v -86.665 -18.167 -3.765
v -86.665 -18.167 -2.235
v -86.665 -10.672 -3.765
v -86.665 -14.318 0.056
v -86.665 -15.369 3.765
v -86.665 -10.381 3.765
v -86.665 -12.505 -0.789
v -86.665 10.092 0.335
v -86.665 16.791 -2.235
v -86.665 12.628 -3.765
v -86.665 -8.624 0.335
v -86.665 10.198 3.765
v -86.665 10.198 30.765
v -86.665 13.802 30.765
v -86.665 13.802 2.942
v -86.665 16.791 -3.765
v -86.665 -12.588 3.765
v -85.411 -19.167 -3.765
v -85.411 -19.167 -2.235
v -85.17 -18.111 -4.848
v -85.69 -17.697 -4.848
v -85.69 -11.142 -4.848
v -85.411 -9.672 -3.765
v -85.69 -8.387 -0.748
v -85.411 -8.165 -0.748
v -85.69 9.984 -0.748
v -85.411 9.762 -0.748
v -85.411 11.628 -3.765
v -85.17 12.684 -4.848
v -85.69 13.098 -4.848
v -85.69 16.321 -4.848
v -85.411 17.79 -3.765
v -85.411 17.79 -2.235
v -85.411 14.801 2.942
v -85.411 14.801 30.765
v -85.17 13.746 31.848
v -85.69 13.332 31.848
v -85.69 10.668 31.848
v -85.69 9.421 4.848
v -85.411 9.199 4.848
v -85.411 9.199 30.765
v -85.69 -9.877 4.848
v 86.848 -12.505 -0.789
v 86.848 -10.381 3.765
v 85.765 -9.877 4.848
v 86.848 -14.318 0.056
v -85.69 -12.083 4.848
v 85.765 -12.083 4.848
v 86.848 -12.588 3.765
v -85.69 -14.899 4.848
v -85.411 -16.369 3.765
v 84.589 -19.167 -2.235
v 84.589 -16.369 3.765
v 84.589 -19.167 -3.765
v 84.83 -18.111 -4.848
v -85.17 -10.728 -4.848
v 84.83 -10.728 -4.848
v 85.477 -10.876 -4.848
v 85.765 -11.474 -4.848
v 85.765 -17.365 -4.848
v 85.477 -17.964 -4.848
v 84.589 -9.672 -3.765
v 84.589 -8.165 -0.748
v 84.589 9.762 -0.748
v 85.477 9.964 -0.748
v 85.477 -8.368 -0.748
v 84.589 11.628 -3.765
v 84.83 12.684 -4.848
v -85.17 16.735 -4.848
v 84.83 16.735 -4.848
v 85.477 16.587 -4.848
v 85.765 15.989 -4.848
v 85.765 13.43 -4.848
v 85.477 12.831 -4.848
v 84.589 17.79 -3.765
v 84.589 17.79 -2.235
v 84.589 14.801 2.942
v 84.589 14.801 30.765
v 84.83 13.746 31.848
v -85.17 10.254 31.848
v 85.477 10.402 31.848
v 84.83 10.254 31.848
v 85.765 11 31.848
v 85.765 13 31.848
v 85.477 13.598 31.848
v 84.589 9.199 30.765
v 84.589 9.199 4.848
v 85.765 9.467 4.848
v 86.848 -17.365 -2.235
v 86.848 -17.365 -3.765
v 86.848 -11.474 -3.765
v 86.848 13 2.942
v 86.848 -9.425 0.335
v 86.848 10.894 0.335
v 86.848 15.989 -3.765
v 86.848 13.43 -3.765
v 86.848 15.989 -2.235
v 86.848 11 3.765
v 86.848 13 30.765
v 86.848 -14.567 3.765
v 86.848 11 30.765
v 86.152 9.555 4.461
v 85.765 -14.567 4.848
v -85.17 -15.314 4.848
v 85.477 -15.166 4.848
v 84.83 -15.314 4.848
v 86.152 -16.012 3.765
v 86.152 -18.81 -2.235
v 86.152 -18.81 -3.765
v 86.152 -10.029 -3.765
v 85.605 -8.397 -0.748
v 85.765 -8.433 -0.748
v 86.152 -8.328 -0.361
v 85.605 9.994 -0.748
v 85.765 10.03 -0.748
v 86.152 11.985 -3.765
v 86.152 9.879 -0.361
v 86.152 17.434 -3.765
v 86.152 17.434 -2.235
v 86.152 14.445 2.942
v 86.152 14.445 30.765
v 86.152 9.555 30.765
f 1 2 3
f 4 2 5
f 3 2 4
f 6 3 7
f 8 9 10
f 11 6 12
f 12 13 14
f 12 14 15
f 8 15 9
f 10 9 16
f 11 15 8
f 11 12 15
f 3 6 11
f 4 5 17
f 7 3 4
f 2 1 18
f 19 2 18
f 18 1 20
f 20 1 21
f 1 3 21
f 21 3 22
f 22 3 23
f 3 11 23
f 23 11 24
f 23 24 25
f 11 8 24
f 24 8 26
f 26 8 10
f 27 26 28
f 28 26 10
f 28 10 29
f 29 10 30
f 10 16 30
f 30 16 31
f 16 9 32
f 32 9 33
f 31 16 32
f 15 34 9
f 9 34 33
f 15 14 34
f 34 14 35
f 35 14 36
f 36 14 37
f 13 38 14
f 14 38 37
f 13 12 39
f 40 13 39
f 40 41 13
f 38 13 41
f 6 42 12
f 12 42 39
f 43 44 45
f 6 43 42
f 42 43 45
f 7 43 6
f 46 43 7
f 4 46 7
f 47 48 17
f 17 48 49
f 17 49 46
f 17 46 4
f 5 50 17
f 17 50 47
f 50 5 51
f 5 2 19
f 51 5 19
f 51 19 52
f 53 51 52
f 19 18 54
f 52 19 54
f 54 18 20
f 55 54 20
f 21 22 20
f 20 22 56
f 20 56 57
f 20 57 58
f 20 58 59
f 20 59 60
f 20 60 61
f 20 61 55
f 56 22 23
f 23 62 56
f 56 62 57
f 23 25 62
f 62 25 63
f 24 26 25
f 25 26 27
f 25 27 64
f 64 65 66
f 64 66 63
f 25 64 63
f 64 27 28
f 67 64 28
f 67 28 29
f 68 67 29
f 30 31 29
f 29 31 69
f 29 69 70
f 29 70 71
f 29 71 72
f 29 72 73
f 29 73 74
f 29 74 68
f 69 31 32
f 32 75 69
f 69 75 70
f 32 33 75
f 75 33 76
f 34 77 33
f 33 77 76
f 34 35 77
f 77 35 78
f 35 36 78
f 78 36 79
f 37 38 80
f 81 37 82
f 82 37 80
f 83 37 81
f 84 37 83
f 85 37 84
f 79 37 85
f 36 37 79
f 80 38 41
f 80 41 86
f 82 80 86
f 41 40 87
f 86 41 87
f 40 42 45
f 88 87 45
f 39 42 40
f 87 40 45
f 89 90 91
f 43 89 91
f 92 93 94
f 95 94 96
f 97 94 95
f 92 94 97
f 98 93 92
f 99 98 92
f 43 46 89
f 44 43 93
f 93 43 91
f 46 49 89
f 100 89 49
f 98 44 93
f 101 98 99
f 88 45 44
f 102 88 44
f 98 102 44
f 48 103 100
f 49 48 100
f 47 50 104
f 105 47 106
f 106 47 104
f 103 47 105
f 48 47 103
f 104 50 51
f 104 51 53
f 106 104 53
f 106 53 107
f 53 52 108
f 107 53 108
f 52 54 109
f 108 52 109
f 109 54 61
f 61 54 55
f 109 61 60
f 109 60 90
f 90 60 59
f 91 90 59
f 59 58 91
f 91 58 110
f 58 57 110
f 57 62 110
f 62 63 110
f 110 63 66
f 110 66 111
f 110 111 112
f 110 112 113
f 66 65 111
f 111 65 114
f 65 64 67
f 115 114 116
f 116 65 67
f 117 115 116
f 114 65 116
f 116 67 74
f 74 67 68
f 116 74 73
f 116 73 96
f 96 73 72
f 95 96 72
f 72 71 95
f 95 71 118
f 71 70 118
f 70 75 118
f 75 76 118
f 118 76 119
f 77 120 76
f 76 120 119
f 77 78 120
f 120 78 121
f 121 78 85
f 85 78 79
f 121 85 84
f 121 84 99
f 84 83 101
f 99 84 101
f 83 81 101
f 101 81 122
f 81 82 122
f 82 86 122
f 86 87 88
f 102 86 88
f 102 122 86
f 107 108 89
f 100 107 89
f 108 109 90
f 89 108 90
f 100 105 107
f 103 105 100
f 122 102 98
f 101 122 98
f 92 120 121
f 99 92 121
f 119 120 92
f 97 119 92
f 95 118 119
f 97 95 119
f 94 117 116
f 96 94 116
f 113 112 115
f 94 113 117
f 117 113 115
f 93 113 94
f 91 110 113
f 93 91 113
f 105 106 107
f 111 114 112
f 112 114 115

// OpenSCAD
module Base(length)
{
    difference()
    {
        // Base
        cube([length, 45, 6], center = true);

        // Trim off the front
        translate([0, -27, 0])
        rotate([-25, 0, 0])
        cube([length * 1.5, 20, 30], center = true);

        // Trim off the back
        translate([0, 31, -9])
        rotate([30, 0, 0])
        cube([length * 1.5, 20, 40], center = true);
    }
}

module MainShape(length)
{
    // Upright
    translate([0, 12, 16])
    cube([length, 2, 28], center = true);

    difference()
    {
        Base(length);

        translate([0, 1.5, -1])
        scale([1.2, 0.75, 0.7])
        Base(length);
    }
}

module BlockyCardHolder(length = 170, cardThickness = 2, roundingFactor = 2)
{
    difference()
    {
        minkowski()
        {
            MainShape(length);
            sphere(roundingFactor);
        }

        // Card slot
        color("red")
        rotate([-25, 0, 0])
        translate([0, -12, 4])
        cube([length * 1.5, cardThickness, 20], center = true);
    }
}

BlockyCardHolder();
